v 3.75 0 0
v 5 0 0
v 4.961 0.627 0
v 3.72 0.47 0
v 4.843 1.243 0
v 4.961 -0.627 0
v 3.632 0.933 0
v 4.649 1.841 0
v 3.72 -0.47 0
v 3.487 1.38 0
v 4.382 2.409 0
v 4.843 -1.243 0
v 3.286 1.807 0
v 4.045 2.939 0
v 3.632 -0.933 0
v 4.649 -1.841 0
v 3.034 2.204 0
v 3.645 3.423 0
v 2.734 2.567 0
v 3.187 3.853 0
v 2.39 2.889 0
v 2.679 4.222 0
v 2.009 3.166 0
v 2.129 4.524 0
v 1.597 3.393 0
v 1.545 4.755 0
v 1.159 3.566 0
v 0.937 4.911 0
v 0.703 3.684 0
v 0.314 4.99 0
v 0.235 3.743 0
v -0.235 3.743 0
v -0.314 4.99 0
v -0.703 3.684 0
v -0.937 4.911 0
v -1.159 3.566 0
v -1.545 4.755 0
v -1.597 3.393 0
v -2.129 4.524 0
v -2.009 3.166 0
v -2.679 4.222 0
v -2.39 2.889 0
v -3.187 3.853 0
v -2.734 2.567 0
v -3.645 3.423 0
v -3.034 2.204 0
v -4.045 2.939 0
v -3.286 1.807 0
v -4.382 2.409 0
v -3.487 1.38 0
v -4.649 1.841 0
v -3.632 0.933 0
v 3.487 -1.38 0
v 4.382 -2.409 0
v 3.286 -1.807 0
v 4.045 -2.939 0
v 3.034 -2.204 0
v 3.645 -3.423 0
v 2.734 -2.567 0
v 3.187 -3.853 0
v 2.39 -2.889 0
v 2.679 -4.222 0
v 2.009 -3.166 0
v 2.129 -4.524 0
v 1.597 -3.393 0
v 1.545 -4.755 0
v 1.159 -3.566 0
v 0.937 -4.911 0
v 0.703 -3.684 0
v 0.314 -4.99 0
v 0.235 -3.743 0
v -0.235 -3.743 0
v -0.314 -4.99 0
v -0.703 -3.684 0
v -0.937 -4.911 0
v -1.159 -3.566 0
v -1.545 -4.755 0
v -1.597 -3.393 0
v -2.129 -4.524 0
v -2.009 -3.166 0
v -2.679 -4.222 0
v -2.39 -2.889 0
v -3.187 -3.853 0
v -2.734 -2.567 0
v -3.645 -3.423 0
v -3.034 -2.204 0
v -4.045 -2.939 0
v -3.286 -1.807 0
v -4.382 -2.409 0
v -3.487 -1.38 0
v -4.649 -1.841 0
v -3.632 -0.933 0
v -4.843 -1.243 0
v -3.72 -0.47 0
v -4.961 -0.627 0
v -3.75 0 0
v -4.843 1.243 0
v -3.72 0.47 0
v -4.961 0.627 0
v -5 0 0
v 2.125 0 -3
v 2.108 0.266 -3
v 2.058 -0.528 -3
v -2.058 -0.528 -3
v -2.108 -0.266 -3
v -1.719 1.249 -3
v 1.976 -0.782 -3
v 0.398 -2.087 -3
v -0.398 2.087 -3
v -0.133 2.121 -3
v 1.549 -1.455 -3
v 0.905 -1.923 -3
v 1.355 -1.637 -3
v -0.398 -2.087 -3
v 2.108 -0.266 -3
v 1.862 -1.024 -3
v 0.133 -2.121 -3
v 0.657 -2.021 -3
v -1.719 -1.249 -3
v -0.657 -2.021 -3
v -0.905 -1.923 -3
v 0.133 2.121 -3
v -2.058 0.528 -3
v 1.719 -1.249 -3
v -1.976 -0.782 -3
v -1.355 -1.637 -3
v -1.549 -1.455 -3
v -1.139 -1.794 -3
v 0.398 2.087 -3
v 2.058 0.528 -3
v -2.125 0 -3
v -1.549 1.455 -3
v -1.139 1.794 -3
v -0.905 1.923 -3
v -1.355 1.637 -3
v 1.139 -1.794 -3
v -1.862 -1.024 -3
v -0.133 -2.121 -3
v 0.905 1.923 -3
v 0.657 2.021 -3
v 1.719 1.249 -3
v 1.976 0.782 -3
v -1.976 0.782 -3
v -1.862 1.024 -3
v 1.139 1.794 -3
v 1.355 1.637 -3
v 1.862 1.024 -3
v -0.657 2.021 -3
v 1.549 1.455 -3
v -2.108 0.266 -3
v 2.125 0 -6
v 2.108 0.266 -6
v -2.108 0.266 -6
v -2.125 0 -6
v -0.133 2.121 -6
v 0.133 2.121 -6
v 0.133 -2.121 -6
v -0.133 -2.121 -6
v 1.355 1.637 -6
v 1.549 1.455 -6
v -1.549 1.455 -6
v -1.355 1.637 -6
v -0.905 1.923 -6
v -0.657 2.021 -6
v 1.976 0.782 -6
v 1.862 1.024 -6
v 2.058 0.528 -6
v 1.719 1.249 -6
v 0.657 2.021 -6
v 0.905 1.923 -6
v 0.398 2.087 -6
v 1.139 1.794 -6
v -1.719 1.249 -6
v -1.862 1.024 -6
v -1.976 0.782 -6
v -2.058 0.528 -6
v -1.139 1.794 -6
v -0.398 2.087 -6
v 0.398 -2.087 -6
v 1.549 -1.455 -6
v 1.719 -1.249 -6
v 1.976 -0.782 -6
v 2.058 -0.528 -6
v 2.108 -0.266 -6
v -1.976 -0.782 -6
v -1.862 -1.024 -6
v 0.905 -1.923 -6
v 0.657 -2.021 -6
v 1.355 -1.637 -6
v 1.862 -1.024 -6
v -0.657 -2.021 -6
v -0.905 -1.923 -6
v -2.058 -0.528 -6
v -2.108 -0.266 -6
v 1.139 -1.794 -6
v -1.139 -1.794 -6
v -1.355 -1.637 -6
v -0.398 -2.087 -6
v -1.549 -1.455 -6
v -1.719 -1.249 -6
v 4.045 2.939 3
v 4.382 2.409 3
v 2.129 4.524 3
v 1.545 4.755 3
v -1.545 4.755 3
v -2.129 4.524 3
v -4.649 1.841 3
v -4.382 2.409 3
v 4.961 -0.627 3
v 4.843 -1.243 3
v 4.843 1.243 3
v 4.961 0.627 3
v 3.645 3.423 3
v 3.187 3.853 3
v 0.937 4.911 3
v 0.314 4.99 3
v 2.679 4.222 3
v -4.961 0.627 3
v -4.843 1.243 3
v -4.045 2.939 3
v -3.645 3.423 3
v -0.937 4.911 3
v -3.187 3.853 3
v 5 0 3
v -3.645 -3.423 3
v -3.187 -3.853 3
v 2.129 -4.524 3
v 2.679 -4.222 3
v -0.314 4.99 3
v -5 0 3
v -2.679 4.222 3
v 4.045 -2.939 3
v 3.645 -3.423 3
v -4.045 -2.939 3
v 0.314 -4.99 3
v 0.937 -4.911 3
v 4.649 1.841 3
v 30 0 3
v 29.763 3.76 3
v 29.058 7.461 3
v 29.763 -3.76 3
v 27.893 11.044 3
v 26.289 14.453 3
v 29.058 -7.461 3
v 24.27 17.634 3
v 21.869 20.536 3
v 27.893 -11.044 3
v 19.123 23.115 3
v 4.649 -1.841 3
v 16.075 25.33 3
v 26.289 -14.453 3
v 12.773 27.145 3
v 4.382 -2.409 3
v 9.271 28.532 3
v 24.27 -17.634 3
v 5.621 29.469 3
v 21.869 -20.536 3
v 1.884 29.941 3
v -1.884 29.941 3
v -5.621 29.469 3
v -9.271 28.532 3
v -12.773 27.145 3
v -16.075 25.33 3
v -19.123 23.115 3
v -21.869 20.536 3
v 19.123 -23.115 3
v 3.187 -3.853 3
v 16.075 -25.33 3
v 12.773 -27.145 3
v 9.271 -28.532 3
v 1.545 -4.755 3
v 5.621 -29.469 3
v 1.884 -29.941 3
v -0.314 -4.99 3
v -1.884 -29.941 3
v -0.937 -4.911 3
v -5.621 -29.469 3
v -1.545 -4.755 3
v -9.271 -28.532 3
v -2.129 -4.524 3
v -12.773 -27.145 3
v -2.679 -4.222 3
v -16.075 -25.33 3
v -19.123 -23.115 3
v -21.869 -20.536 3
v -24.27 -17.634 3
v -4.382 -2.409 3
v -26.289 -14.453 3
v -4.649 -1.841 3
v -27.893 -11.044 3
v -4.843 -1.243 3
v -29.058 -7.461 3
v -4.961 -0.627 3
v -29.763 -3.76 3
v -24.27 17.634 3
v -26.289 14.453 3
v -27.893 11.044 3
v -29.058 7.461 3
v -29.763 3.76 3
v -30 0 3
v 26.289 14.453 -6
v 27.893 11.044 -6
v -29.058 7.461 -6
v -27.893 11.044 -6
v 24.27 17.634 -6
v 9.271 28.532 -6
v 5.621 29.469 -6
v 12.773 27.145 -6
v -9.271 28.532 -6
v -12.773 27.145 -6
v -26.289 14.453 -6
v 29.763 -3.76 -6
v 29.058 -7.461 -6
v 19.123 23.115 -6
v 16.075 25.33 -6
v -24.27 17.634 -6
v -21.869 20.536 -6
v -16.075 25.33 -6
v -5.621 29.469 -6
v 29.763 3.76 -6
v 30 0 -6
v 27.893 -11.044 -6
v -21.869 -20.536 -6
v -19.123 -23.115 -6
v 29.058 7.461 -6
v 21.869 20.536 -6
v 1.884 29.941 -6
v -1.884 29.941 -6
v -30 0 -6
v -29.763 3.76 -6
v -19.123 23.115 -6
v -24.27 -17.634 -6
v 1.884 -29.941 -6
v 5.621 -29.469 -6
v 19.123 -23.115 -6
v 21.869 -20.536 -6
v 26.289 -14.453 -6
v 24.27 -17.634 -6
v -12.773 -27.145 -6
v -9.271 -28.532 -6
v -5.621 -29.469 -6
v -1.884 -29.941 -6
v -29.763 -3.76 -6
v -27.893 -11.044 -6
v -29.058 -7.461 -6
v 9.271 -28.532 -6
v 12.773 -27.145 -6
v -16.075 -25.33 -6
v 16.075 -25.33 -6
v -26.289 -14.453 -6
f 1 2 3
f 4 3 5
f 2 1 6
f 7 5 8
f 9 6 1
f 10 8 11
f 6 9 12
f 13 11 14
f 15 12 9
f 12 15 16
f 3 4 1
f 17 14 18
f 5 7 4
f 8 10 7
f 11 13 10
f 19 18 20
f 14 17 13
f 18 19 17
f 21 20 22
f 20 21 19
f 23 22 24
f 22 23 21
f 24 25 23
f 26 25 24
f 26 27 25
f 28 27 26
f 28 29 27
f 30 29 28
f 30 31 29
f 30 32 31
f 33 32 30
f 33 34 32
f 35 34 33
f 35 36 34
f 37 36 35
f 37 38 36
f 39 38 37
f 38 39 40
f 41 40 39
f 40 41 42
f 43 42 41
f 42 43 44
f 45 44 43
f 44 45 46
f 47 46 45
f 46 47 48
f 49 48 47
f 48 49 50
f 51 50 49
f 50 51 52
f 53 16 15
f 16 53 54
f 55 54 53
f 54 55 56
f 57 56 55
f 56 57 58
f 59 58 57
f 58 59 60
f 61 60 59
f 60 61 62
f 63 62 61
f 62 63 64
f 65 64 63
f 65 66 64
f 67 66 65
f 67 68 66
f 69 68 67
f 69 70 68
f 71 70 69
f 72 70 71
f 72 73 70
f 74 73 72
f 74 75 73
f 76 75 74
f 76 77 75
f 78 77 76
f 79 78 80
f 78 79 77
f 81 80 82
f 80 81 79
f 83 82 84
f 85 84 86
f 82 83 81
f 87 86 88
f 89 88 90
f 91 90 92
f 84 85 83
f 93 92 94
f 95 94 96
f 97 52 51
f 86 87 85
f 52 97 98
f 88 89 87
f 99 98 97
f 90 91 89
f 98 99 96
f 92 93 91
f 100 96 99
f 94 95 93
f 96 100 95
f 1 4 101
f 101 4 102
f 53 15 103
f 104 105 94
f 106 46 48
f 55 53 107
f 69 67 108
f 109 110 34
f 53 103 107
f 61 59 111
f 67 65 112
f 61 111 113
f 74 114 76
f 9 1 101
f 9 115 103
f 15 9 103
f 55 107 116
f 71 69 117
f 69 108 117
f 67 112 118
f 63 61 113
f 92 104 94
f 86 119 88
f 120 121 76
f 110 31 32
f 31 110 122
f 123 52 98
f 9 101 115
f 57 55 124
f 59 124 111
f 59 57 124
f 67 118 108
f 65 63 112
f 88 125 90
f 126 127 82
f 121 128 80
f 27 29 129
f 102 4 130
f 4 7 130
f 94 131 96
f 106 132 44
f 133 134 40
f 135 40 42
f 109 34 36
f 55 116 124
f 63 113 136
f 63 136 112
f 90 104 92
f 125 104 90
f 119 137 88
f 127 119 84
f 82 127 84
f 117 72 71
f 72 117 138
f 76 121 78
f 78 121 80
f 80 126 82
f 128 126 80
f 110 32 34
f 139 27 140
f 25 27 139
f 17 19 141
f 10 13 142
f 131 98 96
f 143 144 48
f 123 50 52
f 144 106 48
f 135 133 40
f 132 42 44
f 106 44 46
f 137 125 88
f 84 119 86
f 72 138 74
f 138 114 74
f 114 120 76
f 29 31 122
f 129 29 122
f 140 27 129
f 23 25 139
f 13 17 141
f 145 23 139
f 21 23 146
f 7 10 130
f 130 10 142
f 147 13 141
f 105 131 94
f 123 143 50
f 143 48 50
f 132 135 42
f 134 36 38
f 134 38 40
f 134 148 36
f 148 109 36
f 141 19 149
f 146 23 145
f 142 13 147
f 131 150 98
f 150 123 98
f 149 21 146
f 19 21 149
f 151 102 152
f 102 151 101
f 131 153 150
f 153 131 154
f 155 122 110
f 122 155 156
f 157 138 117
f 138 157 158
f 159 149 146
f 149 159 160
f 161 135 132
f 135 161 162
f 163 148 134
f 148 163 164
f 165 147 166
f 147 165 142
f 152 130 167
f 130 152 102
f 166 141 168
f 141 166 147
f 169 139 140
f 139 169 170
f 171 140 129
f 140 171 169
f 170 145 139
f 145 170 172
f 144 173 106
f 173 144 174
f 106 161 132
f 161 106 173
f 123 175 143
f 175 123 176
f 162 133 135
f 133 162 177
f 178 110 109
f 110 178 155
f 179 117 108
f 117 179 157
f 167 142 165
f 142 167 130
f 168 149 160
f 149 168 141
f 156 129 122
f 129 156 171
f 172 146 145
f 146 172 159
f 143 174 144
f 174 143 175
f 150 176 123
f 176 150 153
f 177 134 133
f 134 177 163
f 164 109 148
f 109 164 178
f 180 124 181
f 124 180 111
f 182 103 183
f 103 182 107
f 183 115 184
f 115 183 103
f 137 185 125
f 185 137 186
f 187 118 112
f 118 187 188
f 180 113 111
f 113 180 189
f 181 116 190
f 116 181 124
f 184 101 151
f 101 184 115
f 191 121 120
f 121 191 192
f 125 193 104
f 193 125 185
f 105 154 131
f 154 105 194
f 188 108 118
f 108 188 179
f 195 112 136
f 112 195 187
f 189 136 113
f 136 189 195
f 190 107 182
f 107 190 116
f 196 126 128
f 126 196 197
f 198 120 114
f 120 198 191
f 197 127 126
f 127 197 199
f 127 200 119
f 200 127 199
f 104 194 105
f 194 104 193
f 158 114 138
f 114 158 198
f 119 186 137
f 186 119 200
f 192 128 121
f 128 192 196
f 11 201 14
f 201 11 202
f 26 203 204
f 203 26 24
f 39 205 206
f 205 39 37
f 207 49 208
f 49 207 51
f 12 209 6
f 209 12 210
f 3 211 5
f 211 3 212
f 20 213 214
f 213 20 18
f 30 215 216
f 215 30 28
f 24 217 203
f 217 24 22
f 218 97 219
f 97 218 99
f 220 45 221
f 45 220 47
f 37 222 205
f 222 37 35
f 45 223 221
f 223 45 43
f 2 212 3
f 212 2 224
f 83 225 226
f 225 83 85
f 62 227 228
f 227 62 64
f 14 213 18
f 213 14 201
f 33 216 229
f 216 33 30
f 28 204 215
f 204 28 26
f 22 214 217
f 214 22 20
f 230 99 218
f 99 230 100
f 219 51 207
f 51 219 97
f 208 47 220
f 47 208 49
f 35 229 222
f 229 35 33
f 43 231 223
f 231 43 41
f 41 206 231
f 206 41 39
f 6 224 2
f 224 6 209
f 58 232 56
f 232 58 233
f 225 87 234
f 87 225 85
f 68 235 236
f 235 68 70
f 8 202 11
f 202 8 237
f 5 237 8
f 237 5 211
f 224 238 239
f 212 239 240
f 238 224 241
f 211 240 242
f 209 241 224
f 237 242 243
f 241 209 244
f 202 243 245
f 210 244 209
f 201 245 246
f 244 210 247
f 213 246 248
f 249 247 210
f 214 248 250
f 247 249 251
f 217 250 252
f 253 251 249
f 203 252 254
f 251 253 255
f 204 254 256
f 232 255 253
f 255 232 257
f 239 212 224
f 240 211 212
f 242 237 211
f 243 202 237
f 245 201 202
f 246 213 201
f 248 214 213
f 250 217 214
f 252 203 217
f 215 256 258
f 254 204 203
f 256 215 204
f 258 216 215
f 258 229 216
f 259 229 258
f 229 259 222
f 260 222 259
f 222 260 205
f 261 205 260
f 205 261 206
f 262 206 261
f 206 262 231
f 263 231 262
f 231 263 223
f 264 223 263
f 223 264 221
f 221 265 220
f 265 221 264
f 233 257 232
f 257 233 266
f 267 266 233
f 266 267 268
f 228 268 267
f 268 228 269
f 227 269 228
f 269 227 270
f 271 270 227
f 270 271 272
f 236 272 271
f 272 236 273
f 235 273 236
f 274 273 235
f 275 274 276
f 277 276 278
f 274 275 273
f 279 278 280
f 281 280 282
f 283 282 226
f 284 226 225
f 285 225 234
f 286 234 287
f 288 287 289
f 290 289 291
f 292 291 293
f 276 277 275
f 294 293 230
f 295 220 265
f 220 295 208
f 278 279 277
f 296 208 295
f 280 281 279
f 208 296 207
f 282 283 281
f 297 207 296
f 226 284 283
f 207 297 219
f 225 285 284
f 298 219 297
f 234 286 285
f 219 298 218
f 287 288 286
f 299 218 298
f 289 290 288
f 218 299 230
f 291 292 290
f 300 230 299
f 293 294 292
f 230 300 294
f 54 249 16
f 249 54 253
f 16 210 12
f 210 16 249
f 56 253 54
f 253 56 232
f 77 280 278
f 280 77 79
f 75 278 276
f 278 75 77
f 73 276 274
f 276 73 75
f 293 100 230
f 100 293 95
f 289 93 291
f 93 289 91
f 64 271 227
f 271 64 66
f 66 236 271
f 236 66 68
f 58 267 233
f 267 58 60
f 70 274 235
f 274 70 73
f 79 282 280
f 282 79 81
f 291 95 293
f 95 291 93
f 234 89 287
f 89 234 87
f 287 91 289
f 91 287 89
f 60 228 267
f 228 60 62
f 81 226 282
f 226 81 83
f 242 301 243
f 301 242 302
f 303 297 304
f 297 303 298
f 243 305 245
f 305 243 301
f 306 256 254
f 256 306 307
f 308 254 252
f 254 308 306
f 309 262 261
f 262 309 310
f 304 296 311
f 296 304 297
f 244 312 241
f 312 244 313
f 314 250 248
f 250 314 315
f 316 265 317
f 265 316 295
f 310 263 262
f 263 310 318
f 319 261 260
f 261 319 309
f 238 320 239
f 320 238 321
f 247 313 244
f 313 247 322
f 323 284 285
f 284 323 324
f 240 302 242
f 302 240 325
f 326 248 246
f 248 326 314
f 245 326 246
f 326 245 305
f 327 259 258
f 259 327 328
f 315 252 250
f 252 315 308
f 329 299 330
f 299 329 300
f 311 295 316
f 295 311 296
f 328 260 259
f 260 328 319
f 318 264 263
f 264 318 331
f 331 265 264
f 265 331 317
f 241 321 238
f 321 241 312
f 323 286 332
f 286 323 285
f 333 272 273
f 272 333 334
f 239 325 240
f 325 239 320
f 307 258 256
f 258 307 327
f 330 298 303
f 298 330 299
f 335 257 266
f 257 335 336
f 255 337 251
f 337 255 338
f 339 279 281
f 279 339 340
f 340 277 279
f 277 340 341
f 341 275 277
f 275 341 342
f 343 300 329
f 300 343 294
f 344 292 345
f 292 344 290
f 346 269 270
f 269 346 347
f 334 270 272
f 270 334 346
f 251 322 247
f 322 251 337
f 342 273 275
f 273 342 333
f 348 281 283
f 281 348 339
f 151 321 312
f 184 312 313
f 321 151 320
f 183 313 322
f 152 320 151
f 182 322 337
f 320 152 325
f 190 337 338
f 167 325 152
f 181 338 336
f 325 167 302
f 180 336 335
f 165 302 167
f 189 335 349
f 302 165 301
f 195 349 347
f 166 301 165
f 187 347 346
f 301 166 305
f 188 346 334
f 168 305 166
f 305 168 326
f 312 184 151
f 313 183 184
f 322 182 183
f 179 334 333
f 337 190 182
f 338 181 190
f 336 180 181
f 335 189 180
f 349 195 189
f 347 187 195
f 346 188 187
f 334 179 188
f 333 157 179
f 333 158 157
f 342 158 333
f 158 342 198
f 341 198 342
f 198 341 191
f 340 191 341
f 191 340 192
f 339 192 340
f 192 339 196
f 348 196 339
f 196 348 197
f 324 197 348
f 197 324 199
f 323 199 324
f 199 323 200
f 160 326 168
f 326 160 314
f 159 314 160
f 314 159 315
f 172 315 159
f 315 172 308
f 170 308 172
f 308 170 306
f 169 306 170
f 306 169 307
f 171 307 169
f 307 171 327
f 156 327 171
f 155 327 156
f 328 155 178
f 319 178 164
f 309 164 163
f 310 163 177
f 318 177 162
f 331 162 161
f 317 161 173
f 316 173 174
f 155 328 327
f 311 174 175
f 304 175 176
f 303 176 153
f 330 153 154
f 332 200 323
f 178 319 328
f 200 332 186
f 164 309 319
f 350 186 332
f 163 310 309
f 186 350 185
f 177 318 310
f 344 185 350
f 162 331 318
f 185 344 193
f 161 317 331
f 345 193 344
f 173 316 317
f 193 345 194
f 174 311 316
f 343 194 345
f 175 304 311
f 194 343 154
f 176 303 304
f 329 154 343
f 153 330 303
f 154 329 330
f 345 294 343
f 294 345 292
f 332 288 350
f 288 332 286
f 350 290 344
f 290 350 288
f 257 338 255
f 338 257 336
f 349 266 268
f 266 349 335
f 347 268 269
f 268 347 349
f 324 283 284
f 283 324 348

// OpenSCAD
$fn = 50;

difference() {
	union() {
		translate(v = [0, 0, -6.0]) {
			cylinder(h = 9, r = 30.0);
		}
	}
	union() {
		translate(v = [0, 0, 0]) {
			rotate(a = [0, 0, 0]) {
				difference() {
					union() {
						translate(v = [0, 0, -9.0]) {
							cylinder(h = 9, r = 2.0);
						}
						translate(v = [0, 0, -3]) {
							cylinder(h = 3, r1 = 2.125, r2 = 3.75);
						}
						translate(v = [0, 0, -9.0]) {
							cylinder(h = 9, r = 2.125);
						}
						translate(v = [0, 0, -9.0]) {
							cylinder(h = 9, r = 2.0);
						}
					}
					union();
				}
			}
		}
		#cylinder(h = 3, r = 5.0);
	}
}
